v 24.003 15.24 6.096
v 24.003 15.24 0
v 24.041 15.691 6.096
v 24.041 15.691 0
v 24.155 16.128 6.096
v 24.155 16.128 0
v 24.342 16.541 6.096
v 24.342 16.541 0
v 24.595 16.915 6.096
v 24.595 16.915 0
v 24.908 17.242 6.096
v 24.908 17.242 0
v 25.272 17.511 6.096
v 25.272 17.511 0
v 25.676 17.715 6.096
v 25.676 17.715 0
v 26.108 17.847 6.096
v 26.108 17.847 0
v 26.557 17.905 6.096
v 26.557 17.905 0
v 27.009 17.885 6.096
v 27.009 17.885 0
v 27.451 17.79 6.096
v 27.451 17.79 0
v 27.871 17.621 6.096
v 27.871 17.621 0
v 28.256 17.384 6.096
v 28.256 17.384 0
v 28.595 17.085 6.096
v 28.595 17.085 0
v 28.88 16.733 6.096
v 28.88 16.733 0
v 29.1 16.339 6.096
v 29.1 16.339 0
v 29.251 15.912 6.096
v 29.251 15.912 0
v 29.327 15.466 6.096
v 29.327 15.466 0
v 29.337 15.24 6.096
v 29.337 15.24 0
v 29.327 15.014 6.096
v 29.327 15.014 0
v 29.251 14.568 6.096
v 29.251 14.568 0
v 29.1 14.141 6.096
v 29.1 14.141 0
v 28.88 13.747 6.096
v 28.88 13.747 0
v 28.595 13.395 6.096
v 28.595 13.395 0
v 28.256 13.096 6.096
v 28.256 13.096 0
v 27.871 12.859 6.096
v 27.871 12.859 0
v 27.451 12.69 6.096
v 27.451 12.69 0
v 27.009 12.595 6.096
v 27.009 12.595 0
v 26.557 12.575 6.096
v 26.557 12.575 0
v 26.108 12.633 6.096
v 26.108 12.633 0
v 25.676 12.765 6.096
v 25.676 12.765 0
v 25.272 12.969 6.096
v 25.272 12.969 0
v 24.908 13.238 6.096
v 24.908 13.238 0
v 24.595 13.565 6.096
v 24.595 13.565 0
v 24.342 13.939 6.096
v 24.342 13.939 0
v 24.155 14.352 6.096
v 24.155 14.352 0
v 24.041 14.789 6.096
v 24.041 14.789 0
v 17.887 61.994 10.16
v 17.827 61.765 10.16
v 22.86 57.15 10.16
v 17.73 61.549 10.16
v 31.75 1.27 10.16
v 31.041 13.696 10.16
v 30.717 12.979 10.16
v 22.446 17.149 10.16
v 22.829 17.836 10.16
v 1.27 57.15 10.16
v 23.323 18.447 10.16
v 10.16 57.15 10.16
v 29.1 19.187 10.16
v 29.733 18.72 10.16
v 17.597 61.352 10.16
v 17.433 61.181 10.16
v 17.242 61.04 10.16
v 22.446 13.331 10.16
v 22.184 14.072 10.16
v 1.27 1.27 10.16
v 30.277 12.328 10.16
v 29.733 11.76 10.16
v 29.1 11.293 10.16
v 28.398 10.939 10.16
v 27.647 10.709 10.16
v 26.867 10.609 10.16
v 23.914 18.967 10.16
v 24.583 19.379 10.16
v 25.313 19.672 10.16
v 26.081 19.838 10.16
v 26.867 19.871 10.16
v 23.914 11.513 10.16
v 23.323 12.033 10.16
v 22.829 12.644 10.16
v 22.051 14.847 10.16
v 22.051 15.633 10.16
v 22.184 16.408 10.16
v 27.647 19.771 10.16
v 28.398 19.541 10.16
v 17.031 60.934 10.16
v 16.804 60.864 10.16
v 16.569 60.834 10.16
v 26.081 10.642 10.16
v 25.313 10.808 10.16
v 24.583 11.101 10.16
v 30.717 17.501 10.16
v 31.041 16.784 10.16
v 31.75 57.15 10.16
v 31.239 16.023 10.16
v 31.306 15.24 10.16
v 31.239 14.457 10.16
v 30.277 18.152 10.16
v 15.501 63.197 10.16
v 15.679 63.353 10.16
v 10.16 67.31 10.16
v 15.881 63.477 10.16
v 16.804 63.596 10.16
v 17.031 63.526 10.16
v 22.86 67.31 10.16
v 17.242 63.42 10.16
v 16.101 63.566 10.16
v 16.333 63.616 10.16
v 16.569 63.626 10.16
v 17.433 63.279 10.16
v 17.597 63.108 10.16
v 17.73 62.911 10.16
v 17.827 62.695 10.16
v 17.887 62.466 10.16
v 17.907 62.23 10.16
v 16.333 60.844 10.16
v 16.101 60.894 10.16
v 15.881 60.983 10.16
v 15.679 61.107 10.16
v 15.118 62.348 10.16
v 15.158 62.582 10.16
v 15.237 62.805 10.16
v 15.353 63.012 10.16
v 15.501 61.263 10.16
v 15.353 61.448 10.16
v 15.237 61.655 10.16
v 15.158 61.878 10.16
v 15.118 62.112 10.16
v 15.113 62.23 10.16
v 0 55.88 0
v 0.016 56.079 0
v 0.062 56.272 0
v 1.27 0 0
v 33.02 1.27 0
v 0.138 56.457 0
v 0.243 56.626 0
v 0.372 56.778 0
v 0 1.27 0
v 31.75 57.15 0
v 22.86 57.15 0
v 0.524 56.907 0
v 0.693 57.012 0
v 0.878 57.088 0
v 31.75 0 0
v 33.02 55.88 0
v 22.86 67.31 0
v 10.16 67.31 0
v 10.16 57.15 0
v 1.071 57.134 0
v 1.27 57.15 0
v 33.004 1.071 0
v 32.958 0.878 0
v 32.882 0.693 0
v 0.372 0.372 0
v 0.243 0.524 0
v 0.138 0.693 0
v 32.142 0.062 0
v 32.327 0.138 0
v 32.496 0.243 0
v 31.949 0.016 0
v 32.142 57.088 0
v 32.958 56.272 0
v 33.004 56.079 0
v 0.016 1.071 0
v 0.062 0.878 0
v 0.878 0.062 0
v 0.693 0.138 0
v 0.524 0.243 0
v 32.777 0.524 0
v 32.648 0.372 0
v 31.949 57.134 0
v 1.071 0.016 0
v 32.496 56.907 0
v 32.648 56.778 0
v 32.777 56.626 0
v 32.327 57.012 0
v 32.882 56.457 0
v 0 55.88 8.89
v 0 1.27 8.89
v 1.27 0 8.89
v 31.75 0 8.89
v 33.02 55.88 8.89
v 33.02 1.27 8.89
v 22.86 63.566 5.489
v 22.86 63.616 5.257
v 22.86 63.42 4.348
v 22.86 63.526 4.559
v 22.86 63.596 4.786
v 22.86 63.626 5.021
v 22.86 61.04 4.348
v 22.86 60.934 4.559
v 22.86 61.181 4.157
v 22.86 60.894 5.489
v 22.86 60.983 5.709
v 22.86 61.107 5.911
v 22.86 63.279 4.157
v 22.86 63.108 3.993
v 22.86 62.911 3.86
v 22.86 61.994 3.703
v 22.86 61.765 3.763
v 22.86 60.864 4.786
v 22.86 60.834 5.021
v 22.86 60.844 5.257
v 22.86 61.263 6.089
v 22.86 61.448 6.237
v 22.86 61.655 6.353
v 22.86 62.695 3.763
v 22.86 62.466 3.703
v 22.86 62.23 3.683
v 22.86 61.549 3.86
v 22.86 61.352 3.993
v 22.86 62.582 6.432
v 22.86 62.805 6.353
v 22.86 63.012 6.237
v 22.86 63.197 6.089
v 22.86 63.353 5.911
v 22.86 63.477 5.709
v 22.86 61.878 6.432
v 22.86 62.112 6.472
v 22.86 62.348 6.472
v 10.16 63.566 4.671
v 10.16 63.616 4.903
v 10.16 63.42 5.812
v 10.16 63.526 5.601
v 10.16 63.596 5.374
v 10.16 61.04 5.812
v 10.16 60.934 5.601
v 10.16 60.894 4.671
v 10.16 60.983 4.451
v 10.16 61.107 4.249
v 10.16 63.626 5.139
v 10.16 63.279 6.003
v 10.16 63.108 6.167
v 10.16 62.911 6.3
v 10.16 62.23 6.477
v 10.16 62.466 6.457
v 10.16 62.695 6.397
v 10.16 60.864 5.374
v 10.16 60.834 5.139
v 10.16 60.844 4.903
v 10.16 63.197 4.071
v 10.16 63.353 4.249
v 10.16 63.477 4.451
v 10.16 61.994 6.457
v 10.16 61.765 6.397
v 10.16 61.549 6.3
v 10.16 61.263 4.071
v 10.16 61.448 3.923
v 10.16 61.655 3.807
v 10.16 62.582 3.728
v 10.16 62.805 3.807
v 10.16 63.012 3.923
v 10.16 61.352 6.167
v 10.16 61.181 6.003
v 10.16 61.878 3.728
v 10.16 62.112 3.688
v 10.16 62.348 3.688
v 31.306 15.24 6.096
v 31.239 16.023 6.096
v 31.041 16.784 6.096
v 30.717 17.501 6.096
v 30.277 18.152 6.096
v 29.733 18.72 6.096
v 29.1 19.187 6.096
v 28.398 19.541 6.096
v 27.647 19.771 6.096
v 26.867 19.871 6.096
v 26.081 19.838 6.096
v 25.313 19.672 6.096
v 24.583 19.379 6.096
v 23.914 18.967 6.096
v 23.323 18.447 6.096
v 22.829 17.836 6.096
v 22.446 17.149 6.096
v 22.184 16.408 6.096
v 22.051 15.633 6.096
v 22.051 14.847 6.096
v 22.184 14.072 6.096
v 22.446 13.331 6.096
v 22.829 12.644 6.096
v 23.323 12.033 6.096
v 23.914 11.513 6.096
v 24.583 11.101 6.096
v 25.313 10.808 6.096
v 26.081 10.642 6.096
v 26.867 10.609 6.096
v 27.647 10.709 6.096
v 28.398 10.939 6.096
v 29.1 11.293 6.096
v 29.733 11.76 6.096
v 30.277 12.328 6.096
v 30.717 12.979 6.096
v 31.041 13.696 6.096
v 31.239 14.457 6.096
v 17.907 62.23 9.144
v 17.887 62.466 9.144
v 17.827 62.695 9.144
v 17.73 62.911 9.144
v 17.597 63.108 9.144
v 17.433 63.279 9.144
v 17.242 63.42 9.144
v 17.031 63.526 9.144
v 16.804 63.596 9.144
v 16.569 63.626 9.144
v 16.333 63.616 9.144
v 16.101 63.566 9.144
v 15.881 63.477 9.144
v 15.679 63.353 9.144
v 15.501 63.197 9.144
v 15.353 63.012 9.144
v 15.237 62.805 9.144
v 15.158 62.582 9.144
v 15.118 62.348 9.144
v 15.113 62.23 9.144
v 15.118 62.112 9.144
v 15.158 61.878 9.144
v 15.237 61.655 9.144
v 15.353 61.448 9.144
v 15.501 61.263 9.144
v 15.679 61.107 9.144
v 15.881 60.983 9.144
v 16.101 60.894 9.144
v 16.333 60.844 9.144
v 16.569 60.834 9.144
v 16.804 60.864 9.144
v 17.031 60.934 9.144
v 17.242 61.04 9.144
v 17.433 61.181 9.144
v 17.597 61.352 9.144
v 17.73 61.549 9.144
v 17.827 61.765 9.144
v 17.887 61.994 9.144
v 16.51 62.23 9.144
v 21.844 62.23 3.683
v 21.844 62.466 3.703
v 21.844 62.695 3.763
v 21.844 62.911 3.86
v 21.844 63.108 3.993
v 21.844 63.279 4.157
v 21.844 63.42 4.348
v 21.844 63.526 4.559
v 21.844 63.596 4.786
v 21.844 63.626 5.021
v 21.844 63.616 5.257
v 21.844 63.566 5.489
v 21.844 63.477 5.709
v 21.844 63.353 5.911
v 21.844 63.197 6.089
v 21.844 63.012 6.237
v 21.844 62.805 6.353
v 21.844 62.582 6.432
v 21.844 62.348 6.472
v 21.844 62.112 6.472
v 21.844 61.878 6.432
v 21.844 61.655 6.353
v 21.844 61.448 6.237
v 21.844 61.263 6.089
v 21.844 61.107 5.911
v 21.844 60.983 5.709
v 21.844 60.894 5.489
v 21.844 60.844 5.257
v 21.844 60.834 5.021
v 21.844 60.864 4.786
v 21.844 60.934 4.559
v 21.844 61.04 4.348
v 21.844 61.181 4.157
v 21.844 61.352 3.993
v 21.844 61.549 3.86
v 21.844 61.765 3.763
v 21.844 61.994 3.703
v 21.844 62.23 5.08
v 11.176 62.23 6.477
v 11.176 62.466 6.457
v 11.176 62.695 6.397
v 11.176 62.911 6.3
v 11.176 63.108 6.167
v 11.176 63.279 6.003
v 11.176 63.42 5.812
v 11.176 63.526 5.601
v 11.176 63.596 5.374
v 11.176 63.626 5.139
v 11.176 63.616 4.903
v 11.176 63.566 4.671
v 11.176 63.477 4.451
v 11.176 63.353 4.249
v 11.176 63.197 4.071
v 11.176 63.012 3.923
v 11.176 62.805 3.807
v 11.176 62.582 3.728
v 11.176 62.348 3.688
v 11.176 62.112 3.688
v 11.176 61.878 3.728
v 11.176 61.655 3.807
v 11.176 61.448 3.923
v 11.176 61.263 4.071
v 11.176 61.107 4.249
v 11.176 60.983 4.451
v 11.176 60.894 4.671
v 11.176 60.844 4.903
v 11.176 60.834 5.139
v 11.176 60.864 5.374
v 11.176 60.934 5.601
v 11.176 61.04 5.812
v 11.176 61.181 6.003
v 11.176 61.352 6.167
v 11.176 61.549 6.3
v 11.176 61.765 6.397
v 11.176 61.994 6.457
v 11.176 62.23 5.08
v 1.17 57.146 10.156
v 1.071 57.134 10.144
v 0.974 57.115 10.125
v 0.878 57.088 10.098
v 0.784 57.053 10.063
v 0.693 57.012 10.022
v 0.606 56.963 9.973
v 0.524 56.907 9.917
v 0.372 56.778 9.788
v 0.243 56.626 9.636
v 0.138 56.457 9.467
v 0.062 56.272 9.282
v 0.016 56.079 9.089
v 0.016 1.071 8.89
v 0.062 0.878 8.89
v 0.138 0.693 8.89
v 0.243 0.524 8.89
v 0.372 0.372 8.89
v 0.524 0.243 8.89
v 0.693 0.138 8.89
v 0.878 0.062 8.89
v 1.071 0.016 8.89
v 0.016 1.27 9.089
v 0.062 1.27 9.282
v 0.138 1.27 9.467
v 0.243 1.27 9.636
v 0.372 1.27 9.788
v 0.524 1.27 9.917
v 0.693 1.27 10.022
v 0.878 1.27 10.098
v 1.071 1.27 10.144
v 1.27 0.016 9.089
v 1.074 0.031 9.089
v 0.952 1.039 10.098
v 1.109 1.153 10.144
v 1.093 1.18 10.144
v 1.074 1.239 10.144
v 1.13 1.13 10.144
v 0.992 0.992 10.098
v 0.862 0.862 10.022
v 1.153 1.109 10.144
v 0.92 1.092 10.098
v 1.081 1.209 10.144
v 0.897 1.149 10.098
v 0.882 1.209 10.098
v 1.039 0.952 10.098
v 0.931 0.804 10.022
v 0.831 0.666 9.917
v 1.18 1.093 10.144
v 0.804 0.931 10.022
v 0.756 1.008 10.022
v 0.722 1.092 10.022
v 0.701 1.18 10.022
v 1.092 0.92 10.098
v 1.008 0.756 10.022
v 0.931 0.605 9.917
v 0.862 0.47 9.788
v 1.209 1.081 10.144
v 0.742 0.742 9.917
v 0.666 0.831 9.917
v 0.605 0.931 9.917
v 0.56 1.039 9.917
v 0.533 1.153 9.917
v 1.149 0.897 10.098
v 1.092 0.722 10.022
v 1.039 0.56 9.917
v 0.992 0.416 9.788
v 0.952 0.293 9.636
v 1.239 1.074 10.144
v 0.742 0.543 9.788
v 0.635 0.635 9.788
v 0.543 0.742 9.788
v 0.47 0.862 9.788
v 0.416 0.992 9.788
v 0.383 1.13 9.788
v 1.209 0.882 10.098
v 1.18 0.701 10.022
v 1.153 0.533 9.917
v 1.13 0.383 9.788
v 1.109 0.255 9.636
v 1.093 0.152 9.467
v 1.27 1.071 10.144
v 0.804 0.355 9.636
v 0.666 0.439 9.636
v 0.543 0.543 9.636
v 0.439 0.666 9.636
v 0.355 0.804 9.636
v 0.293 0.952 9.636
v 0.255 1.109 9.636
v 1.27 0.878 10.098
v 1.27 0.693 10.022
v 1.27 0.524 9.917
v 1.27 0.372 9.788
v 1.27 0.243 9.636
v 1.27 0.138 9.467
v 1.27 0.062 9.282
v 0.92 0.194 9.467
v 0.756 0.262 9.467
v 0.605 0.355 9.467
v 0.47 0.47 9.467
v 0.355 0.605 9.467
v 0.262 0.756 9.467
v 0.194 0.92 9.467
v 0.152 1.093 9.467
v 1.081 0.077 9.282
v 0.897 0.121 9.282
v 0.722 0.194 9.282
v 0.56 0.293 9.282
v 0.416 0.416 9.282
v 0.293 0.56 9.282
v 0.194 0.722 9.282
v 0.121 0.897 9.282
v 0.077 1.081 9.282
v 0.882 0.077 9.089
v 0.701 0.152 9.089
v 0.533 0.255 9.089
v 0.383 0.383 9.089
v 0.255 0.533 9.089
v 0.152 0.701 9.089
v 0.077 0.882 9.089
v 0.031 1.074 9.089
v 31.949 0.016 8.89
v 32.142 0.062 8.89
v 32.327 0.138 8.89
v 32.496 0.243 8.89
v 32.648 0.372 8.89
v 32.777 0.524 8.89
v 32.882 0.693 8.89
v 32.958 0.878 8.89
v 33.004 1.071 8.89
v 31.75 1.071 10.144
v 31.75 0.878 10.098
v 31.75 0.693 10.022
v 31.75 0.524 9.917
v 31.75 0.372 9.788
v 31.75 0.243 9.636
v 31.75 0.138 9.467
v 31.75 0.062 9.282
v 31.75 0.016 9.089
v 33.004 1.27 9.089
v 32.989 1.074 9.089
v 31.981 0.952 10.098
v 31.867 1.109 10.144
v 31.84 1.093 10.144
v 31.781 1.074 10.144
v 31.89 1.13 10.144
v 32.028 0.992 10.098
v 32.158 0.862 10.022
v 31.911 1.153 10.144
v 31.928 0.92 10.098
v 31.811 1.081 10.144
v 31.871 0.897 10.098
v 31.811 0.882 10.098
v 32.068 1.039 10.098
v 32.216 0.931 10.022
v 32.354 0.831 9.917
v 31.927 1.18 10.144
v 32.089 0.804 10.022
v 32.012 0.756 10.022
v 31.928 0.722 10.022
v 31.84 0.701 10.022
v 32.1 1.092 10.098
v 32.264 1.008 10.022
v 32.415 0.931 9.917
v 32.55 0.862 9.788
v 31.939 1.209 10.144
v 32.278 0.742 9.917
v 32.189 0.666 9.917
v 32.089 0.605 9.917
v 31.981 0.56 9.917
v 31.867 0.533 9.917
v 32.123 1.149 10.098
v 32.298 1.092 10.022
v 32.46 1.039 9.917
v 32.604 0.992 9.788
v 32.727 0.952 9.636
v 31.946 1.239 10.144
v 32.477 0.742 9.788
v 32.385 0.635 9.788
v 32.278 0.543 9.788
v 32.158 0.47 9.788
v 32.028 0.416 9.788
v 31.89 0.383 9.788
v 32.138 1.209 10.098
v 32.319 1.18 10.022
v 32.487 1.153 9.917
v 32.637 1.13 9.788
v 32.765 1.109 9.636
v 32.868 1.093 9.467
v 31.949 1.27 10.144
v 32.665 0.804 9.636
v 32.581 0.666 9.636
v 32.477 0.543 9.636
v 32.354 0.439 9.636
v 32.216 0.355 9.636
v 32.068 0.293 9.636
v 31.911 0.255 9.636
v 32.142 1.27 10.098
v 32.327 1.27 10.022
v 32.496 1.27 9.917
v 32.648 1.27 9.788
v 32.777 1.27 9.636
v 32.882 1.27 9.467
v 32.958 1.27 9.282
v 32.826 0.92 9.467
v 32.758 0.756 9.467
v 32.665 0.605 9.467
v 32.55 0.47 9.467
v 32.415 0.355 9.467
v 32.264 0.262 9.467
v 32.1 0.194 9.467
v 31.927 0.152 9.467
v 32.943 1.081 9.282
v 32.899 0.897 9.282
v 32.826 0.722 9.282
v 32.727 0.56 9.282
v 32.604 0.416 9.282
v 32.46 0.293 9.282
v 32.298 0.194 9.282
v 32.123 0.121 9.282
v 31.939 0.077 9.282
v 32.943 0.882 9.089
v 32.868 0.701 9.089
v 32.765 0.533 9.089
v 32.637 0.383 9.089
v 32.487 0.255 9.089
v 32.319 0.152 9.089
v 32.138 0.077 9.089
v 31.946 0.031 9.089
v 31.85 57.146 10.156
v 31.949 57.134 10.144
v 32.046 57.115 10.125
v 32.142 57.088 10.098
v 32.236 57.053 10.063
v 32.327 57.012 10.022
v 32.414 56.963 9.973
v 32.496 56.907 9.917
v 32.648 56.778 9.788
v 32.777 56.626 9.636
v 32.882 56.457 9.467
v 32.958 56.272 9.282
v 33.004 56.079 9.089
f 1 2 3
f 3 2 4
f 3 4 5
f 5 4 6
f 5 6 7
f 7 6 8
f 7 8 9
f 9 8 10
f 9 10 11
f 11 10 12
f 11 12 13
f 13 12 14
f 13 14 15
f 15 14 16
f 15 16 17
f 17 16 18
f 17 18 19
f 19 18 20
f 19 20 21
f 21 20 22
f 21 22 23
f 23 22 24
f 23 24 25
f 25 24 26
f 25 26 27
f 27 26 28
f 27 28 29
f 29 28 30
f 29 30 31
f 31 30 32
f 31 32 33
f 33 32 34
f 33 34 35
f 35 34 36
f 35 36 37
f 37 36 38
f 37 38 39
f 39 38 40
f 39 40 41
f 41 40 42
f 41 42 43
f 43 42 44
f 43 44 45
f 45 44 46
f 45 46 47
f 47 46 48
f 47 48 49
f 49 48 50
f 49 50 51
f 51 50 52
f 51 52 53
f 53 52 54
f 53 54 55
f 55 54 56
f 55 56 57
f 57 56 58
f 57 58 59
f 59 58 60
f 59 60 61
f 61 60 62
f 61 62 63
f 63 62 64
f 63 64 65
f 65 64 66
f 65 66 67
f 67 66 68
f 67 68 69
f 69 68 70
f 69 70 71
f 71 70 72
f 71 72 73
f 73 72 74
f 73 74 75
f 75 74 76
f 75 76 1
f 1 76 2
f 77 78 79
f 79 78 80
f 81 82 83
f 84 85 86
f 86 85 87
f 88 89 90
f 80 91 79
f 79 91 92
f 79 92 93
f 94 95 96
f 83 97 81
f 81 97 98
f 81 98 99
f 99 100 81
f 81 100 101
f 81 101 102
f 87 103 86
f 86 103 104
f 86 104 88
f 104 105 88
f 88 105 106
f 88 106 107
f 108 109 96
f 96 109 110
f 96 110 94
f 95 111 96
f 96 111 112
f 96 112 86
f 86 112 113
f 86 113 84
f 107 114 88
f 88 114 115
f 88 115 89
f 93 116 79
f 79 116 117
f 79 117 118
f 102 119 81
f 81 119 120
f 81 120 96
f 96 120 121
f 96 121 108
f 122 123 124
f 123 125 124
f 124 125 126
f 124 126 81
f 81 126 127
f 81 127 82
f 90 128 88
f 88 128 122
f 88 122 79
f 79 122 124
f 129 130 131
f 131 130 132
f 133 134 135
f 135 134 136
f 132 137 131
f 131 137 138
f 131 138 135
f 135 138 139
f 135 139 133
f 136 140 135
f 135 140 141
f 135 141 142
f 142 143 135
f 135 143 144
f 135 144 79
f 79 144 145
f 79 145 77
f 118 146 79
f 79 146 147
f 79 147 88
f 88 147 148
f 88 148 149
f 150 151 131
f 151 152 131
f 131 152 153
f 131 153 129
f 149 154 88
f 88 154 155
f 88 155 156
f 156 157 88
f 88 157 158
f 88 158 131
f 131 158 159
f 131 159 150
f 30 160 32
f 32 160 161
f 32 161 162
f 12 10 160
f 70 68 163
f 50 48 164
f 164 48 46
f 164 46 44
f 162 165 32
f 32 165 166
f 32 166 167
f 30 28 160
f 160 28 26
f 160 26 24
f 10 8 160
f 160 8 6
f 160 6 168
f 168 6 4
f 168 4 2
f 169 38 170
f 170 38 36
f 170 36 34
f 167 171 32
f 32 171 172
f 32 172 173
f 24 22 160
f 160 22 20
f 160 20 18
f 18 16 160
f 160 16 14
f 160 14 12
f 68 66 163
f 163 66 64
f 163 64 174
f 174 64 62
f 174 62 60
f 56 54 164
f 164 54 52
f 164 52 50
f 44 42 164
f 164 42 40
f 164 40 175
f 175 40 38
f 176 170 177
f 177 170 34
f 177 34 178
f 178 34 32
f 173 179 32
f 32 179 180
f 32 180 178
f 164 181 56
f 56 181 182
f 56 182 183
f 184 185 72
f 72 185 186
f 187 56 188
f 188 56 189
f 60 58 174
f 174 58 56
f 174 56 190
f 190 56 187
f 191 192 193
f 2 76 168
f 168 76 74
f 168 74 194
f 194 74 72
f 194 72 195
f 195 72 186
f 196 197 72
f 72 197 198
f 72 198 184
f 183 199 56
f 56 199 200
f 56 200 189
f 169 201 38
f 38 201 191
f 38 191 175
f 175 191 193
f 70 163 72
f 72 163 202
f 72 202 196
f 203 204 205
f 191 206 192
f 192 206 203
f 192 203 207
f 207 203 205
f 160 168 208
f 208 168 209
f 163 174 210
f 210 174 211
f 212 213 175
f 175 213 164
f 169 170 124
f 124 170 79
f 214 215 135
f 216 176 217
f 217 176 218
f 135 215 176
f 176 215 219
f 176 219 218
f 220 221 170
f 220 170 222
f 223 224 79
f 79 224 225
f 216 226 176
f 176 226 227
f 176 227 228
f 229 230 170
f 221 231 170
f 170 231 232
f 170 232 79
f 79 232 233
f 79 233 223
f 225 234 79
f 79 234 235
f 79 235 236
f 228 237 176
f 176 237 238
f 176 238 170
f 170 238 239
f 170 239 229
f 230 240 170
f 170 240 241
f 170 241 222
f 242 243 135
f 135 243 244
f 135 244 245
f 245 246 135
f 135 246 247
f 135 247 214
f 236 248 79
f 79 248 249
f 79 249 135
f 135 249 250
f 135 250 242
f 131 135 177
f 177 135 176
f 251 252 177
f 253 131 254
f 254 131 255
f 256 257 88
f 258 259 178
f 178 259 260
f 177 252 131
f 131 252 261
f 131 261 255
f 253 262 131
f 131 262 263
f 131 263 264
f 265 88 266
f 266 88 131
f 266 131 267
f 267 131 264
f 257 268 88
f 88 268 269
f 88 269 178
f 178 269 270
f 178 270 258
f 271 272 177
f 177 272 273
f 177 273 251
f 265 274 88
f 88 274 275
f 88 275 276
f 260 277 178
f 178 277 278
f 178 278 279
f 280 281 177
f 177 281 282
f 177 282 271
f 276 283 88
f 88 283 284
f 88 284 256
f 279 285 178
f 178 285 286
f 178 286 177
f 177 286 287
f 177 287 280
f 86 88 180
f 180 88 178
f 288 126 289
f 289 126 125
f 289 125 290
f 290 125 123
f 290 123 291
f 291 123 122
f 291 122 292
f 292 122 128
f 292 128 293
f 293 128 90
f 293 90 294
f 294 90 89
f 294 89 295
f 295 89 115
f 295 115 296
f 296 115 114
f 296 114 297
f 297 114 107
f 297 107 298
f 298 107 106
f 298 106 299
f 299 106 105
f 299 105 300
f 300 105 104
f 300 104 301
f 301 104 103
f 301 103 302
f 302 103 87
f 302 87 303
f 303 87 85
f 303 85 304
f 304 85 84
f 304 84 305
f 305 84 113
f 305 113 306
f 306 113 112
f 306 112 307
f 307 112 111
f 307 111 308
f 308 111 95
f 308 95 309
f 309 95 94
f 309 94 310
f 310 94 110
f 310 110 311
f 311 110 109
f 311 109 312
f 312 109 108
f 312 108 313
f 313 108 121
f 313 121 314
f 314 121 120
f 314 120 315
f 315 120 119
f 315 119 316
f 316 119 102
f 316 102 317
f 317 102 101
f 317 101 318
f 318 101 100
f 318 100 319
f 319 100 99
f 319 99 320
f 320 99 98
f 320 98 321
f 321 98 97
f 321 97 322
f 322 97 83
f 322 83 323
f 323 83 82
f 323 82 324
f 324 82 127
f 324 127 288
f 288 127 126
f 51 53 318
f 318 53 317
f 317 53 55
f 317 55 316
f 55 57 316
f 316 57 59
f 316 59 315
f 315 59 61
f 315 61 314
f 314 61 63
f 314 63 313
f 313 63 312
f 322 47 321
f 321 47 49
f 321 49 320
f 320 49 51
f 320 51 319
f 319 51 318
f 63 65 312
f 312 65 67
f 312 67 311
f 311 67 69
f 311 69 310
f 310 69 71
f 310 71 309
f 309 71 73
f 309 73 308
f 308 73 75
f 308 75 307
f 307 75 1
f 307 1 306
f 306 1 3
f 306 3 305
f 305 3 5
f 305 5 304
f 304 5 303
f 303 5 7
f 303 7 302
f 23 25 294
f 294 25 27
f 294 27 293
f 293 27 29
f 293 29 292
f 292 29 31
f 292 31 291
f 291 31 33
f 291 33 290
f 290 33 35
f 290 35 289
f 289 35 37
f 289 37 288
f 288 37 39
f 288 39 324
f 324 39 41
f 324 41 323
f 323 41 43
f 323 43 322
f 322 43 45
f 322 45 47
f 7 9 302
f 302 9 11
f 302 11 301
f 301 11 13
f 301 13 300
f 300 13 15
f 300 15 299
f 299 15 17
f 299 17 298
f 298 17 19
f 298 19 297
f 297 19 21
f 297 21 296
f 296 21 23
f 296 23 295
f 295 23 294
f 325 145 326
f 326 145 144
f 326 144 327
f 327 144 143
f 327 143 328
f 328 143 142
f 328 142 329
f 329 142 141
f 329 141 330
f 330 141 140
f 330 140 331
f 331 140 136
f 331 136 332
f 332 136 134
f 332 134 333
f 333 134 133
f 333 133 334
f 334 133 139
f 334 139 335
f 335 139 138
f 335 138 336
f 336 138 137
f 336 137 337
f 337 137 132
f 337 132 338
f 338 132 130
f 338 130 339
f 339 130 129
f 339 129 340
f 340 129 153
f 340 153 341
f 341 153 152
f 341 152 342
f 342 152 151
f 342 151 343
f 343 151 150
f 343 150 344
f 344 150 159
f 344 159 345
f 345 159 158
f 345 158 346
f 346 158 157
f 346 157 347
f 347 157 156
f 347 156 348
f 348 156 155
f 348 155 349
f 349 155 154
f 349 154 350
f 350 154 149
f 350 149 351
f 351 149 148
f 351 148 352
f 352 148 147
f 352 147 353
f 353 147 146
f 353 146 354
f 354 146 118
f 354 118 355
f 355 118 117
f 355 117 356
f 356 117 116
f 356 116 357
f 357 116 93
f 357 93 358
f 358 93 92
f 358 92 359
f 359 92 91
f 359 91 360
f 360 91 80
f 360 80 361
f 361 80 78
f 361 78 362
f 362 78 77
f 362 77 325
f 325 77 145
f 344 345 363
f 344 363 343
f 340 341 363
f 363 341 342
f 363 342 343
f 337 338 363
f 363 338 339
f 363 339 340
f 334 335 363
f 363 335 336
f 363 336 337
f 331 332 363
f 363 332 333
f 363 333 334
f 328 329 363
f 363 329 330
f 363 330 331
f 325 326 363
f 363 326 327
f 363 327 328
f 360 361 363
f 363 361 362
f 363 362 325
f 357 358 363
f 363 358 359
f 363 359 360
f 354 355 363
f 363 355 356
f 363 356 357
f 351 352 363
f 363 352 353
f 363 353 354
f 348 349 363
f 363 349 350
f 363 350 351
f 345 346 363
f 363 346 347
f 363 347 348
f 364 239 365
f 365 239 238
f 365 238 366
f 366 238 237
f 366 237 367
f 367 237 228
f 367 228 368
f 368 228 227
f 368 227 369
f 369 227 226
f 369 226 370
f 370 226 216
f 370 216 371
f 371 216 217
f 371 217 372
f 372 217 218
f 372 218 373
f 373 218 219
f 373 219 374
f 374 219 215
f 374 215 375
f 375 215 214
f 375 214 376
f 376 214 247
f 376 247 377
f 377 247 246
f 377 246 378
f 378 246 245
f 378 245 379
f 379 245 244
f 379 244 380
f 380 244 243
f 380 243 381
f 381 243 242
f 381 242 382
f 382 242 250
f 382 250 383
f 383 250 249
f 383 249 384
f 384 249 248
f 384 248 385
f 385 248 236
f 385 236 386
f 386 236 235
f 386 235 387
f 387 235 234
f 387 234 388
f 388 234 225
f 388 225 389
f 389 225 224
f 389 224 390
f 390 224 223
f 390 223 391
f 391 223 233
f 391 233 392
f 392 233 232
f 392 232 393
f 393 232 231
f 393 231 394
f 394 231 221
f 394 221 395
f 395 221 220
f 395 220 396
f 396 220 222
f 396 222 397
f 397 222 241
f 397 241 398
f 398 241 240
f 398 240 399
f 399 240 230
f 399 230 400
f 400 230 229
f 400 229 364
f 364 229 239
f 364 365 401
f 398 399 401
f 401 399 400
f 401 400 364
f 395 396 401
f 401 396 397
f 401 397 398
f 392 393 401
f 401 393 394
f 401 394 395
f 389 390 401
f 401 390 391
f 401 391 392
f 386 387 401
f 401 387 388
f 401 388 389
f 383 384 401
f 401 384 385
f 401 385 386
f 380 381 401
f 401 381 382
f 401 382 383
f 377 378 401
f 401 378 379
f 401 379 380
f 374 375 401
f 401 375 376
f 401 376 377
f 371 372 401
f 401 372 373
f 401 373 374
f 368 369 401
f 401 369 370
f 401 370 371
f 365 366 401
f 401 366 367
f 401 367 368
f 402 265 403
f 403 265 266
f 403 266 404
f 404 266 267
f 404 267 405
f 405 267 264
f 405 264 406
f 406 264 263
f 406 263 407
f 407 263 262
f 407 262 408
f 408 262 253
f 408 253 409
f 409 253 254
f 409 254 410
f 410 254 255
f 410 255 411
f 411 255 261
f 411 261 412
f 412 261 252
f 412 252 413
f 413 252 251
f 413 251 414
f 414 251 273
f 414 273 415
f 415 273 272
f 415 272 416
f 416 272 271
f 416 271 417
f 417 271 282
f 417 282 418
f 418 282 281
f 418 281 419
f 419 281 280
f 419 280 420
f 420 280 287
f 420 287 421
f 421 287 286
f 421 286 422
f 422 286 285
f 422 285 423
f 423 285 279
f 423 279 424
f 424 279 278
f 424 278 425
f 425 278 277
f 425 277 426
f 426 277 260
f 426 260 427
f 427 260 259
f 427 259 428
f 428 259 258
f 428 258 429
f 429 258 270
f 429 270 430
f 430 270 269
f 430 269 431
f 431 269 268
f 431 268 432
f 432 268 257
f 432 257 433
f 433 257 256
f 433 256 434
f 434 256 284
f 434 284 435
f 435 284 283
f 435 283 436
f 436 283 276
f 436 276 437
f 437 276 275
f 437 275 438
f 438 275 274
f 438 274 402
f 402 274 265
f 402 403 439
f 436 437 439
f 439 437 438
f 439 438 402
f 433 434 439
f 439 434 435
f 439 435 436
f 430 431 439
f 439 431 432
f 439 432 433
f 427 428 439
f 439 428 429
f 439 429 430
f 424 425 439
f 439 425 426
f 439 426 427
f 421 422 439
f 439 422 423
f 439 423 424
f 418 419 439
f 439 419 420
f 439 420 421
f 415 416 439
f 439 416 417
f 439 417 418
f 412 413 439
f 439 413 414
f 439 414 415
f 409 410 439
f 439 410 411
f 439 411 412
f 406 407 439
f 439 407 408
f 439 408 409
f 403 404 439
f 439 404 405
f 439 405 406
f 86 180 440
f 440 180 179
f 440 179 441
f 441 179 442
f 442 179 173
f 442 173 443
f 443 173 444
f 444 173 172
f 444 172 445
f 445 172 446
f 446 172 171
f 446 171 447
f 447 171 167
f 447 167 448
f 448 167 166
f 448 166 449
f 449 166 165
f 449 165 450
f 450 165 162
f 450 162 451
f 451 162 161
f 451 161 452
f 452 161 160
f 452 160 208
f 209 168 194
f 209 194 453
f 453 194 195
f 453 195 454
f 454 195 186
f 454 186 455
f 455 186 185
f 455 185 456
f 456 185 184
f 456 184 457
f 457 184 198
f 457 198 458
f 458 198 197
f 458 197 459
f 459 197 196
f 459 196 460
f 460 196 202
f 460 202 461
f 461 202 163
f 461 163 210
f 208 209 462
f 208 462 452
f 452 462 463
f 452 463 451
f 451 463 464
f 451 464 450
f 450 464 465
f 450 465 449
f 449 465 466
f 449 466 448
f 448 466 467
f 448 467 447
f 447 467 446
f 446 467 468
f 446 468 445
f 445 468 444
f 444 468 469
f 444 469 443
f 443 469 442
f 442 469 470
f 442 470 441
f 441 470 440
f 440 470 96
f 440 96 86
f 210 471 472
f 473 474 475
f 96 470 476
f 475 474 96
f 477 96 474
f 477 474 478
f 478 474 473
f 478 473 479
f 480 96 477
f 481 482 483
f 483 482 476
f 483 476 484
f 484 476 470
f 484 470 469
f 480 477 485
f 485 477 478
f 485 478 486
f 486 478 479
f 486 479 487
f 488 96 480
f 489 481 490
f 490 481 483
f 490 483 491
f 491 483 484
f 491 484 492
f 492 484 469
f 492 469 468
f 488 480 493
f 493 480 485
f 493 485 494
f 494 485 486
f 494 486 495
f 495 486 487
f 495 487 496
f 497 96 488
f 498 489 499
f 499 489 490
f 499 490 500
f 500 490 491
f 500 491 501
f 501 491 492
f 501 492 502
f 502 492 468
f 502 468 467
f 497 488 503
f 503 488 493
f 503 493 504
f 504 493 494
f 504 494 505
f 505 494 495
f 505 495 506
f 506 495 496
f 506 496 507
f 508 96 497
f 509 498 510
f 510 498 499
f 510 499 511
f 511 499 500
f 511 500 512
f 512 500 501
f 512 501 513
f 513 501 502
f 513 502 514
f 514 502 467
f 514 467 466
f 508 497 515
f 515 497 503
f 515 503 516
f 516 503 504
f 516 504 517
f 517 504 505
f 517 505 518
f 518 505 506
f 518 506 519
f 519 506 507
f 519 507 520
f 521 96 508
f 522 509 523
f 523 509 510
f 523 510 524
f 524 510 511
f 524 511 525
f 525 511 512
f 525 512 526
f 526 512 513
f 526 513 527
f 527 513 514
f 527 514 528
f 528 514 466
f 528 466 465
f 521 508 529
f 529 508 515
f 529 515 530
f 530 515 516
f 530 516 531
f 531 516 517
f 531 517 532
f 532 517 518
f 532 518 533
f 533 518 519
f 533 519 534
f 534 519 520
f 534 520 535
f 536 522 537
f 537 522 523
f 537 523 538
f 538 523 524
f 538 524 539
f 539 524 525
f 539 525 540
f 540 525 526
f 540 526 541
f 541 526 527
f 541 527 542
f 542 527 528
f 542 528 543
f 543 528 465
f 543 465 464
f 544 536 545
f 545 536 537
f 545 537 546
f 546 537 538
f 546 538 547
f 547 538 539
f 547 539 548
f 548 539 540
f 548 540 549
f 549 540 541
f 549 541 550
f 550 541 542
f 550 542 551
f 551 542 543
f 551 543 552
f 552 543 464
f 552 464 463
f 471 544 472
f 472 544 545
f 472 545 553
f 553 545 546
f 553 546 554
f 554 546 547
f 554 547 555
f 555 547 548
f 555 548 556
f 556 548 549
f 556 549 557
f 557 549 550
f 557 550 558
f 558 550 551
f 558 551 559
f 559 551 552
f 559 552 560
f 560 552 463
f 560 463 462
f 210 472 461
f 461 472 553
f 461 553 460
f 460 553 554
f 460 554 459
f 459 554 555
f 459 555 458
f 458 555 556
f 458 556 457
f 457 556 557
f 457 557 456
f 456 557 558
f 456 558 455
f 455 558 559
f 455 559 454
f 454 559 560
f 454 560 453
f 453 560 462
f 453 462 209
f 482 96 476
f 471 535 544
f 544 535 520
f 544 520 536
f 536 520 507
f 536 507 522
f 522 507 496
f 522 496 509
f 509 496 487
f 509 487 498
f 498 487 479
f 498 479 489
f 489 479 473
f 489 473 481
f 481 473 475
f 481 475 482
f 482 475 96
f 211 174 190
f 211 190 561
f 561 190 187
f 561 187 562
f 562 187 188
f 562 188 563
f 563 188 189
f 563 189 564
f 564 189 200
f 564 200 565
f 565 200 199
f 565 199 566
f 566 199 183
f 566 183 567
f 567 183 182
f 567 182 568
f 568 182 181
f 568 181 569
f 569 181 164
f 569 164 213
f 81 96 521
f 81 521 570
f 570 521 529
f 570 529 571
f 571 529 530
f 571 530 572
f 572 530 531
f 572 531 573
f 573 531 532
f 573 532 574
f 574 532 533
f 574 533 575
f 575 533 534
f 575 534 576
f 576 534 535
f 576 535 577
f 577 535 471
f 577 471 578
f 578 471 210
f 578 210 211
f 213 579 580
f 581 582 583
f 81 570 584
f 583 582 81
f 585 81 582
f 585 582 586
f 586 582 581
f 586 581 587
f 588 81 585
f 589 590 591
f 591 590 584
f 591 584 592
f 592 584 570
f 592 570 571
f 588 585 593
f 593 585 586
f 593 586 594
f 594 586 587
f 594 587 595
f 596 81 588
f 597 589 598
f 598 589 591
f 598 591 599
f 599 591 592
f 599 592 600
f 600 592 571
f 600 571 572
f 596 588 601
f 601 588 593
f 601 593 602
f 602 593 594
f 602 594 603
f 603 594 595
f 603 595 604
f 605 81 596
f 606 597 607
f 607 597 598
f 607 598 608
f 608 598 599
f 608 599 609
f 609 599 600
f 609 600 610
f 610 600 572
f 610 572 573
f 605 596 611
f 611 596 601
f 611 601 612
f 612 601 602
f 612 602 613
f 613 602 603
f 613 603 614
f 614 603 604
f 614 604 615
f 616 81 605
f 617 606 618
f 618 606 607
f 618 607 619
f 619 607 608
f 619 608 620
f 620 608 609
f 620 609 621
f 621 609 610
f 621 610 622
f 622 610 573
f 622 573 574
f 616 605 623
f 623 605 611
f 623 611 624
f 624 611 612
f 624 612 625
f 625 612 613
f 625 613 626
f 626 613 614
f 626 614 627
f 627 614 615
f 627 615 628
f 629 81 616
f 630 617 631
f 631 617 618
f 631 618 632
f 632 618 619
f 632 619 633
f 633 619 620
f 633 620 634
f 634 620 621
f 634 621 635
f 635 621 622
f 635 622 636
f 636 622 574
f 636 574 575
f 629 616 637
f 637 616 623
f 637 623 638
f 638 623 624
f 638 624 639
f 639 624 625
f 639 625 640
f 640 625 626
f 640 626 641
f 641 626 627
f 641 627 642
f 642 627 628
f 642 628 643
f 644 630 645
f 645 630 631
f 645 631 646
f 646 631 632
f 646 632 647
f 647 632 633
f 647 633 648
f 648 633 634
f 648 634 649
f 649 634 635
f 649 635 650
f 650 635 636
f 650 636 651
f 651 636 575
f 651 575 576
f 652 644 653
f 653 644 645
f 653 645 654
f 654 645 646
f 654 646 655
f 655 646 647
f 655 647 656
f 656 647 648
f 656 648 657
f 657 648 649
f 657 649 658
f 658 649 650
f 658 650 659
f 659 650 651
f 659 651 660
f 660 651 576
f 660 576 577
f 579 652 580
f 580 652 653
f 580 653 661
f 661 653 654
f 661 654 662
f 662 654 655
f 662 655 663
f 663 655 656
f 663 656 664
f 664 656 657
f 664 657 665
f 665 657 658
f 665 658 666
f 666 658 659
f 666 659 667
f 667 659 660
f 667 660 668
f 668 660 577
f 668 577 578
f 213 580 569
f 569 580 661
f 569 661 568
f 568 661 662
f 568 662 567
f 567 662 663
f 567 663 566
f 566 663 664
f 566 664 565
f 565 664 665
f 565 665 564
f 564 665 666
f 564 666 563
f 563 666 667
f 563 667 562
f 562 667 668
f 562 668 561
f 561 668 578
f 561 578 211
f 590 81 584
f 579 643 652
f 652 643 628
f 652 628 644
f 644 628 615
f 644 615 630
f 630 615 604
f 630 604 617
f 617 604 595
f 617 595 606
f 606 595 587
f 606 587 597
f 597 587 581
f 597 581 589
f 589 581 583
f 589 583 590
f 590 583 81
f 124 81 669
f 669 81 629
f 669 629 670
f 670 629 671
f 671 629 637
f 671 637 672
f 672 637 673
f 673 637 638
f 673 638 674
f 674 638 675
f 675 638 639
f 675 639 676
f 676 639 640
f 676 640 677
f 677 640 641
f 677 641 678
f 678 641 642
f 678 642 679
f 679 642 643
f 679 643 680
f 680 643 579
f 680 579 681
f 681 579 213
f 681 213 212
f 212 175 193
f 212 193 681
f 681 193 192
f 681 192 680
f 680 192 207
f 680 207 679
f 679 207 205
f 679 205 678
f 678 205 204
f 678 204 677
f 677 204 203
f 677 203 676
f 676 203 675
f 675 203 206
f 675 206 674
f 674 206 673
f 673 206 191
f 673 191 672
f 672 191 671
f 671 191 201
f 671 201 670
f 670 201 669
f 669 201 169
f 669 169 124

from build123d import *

# Parameters (mm, degrees)
SKETCH1_R           = 2.667
BOSS_EXTRUDE1_DEPTH = 10.16
SKETCH7_R           = 4.6355
CUT_EXTRUDE1_DEPTH  = 4.064
SKETCH3_R           = 1.397
CUT_EXTRUDE2_DEPTH  = 1.016
SKETCH8_R           = 1.397
CUT_EXTRUDE3_DEPTH  = 1.016
CUT_EXTRUDE4_START  = -1.016
SKETCH9_R           = 1.397
CUT_EXTRUDE4_DEPTH  = 1.016
FILLET1_R           = 1.27


with BuildPart() as part:
    # Sketch1 → Boss-Extrude1 (new body)
    with BuildSketch(Plane.XY):
        Polygon((0, 57.15), (10.16, 57.15), (10.16, 67.31), (22.86, 67.31), (22.86, 57.15), (33.02, 57.15), (33.02, 0), (0, 0), align=None)
        with Locations((26.67, 15.24)):
            Circle(SKETCH1_R, mode=Mode.SUBTRACT)
    extrude(amount=BOSS_EXTRUDE1_DEPTH)

    # Sketch7 → Cut-Extrude1 (cut)
    with BuildSketch(Plane.XY.offset(10.16)):
        with Locations((26.67, 15.24)):
            Circle(SKETCH7_R)
    extrude(amount=-CUT_EXTRUDE1_DEPTH, mode=Mode.SUBTRACT)

    # Sketch3 → Cut-Extrude2 (cut)
    with BuildSketch(Plane(origin=(0, 0, 10.16), x_dir=(-1, 0, 0), z_dir=(0, 0, -1))):
        with Locations((-16.51, 62.23)):
            Circle(SKETCH3_R)
    extrude(amount=CUT_EXTRUDE2_DEPTH, mode=Mode.SUBTRACT)

    # Sketch8 → Cut-Extrude3 (cut)
    with BuildSketch(Plane(origin=(22.86, 0, 0), x_dir=(0, 0, -1), z_dir=(1, 0, 0))):
        with Locations((-5.08, 62.23)):
            Circle(SKETCH8_R)
    extrude(amount=-CUT_EXTRUDE3_DEPTH, mode=Mode.SUBTRACT)

    # Sketch9 → Cut-Extrude4 (cut)
    with BuildSketch(Plane.ZY.offset(-10.16).offset(CUT_EXTRUDE4_START)):
        with Locations(Location((5.08, 62.23, 0), (0, 0, 180))):
            Circle(SKETCH9_R)
    extrude(amount=CUT_EXTRUDE4_DEPTH, mode=Mode.SUBTRACT)

    # Fillet1
    fillet1_edges = [part.edges().sort_by_distance(p)[0] for p in [
        (33.02, 28.575, 10.16),
        (0, 57.15, 5.08),
        (33.02, 57.15, 5.08),
        (33.02, 0, 5.08),
        (0, 0, 5.08),
        (0, 28.575, 10.16),
        (16.51, 0, 10.16),
    ]]
    fillet(fillet1_edges, radius=FILLET1_R)


solid = part.part
